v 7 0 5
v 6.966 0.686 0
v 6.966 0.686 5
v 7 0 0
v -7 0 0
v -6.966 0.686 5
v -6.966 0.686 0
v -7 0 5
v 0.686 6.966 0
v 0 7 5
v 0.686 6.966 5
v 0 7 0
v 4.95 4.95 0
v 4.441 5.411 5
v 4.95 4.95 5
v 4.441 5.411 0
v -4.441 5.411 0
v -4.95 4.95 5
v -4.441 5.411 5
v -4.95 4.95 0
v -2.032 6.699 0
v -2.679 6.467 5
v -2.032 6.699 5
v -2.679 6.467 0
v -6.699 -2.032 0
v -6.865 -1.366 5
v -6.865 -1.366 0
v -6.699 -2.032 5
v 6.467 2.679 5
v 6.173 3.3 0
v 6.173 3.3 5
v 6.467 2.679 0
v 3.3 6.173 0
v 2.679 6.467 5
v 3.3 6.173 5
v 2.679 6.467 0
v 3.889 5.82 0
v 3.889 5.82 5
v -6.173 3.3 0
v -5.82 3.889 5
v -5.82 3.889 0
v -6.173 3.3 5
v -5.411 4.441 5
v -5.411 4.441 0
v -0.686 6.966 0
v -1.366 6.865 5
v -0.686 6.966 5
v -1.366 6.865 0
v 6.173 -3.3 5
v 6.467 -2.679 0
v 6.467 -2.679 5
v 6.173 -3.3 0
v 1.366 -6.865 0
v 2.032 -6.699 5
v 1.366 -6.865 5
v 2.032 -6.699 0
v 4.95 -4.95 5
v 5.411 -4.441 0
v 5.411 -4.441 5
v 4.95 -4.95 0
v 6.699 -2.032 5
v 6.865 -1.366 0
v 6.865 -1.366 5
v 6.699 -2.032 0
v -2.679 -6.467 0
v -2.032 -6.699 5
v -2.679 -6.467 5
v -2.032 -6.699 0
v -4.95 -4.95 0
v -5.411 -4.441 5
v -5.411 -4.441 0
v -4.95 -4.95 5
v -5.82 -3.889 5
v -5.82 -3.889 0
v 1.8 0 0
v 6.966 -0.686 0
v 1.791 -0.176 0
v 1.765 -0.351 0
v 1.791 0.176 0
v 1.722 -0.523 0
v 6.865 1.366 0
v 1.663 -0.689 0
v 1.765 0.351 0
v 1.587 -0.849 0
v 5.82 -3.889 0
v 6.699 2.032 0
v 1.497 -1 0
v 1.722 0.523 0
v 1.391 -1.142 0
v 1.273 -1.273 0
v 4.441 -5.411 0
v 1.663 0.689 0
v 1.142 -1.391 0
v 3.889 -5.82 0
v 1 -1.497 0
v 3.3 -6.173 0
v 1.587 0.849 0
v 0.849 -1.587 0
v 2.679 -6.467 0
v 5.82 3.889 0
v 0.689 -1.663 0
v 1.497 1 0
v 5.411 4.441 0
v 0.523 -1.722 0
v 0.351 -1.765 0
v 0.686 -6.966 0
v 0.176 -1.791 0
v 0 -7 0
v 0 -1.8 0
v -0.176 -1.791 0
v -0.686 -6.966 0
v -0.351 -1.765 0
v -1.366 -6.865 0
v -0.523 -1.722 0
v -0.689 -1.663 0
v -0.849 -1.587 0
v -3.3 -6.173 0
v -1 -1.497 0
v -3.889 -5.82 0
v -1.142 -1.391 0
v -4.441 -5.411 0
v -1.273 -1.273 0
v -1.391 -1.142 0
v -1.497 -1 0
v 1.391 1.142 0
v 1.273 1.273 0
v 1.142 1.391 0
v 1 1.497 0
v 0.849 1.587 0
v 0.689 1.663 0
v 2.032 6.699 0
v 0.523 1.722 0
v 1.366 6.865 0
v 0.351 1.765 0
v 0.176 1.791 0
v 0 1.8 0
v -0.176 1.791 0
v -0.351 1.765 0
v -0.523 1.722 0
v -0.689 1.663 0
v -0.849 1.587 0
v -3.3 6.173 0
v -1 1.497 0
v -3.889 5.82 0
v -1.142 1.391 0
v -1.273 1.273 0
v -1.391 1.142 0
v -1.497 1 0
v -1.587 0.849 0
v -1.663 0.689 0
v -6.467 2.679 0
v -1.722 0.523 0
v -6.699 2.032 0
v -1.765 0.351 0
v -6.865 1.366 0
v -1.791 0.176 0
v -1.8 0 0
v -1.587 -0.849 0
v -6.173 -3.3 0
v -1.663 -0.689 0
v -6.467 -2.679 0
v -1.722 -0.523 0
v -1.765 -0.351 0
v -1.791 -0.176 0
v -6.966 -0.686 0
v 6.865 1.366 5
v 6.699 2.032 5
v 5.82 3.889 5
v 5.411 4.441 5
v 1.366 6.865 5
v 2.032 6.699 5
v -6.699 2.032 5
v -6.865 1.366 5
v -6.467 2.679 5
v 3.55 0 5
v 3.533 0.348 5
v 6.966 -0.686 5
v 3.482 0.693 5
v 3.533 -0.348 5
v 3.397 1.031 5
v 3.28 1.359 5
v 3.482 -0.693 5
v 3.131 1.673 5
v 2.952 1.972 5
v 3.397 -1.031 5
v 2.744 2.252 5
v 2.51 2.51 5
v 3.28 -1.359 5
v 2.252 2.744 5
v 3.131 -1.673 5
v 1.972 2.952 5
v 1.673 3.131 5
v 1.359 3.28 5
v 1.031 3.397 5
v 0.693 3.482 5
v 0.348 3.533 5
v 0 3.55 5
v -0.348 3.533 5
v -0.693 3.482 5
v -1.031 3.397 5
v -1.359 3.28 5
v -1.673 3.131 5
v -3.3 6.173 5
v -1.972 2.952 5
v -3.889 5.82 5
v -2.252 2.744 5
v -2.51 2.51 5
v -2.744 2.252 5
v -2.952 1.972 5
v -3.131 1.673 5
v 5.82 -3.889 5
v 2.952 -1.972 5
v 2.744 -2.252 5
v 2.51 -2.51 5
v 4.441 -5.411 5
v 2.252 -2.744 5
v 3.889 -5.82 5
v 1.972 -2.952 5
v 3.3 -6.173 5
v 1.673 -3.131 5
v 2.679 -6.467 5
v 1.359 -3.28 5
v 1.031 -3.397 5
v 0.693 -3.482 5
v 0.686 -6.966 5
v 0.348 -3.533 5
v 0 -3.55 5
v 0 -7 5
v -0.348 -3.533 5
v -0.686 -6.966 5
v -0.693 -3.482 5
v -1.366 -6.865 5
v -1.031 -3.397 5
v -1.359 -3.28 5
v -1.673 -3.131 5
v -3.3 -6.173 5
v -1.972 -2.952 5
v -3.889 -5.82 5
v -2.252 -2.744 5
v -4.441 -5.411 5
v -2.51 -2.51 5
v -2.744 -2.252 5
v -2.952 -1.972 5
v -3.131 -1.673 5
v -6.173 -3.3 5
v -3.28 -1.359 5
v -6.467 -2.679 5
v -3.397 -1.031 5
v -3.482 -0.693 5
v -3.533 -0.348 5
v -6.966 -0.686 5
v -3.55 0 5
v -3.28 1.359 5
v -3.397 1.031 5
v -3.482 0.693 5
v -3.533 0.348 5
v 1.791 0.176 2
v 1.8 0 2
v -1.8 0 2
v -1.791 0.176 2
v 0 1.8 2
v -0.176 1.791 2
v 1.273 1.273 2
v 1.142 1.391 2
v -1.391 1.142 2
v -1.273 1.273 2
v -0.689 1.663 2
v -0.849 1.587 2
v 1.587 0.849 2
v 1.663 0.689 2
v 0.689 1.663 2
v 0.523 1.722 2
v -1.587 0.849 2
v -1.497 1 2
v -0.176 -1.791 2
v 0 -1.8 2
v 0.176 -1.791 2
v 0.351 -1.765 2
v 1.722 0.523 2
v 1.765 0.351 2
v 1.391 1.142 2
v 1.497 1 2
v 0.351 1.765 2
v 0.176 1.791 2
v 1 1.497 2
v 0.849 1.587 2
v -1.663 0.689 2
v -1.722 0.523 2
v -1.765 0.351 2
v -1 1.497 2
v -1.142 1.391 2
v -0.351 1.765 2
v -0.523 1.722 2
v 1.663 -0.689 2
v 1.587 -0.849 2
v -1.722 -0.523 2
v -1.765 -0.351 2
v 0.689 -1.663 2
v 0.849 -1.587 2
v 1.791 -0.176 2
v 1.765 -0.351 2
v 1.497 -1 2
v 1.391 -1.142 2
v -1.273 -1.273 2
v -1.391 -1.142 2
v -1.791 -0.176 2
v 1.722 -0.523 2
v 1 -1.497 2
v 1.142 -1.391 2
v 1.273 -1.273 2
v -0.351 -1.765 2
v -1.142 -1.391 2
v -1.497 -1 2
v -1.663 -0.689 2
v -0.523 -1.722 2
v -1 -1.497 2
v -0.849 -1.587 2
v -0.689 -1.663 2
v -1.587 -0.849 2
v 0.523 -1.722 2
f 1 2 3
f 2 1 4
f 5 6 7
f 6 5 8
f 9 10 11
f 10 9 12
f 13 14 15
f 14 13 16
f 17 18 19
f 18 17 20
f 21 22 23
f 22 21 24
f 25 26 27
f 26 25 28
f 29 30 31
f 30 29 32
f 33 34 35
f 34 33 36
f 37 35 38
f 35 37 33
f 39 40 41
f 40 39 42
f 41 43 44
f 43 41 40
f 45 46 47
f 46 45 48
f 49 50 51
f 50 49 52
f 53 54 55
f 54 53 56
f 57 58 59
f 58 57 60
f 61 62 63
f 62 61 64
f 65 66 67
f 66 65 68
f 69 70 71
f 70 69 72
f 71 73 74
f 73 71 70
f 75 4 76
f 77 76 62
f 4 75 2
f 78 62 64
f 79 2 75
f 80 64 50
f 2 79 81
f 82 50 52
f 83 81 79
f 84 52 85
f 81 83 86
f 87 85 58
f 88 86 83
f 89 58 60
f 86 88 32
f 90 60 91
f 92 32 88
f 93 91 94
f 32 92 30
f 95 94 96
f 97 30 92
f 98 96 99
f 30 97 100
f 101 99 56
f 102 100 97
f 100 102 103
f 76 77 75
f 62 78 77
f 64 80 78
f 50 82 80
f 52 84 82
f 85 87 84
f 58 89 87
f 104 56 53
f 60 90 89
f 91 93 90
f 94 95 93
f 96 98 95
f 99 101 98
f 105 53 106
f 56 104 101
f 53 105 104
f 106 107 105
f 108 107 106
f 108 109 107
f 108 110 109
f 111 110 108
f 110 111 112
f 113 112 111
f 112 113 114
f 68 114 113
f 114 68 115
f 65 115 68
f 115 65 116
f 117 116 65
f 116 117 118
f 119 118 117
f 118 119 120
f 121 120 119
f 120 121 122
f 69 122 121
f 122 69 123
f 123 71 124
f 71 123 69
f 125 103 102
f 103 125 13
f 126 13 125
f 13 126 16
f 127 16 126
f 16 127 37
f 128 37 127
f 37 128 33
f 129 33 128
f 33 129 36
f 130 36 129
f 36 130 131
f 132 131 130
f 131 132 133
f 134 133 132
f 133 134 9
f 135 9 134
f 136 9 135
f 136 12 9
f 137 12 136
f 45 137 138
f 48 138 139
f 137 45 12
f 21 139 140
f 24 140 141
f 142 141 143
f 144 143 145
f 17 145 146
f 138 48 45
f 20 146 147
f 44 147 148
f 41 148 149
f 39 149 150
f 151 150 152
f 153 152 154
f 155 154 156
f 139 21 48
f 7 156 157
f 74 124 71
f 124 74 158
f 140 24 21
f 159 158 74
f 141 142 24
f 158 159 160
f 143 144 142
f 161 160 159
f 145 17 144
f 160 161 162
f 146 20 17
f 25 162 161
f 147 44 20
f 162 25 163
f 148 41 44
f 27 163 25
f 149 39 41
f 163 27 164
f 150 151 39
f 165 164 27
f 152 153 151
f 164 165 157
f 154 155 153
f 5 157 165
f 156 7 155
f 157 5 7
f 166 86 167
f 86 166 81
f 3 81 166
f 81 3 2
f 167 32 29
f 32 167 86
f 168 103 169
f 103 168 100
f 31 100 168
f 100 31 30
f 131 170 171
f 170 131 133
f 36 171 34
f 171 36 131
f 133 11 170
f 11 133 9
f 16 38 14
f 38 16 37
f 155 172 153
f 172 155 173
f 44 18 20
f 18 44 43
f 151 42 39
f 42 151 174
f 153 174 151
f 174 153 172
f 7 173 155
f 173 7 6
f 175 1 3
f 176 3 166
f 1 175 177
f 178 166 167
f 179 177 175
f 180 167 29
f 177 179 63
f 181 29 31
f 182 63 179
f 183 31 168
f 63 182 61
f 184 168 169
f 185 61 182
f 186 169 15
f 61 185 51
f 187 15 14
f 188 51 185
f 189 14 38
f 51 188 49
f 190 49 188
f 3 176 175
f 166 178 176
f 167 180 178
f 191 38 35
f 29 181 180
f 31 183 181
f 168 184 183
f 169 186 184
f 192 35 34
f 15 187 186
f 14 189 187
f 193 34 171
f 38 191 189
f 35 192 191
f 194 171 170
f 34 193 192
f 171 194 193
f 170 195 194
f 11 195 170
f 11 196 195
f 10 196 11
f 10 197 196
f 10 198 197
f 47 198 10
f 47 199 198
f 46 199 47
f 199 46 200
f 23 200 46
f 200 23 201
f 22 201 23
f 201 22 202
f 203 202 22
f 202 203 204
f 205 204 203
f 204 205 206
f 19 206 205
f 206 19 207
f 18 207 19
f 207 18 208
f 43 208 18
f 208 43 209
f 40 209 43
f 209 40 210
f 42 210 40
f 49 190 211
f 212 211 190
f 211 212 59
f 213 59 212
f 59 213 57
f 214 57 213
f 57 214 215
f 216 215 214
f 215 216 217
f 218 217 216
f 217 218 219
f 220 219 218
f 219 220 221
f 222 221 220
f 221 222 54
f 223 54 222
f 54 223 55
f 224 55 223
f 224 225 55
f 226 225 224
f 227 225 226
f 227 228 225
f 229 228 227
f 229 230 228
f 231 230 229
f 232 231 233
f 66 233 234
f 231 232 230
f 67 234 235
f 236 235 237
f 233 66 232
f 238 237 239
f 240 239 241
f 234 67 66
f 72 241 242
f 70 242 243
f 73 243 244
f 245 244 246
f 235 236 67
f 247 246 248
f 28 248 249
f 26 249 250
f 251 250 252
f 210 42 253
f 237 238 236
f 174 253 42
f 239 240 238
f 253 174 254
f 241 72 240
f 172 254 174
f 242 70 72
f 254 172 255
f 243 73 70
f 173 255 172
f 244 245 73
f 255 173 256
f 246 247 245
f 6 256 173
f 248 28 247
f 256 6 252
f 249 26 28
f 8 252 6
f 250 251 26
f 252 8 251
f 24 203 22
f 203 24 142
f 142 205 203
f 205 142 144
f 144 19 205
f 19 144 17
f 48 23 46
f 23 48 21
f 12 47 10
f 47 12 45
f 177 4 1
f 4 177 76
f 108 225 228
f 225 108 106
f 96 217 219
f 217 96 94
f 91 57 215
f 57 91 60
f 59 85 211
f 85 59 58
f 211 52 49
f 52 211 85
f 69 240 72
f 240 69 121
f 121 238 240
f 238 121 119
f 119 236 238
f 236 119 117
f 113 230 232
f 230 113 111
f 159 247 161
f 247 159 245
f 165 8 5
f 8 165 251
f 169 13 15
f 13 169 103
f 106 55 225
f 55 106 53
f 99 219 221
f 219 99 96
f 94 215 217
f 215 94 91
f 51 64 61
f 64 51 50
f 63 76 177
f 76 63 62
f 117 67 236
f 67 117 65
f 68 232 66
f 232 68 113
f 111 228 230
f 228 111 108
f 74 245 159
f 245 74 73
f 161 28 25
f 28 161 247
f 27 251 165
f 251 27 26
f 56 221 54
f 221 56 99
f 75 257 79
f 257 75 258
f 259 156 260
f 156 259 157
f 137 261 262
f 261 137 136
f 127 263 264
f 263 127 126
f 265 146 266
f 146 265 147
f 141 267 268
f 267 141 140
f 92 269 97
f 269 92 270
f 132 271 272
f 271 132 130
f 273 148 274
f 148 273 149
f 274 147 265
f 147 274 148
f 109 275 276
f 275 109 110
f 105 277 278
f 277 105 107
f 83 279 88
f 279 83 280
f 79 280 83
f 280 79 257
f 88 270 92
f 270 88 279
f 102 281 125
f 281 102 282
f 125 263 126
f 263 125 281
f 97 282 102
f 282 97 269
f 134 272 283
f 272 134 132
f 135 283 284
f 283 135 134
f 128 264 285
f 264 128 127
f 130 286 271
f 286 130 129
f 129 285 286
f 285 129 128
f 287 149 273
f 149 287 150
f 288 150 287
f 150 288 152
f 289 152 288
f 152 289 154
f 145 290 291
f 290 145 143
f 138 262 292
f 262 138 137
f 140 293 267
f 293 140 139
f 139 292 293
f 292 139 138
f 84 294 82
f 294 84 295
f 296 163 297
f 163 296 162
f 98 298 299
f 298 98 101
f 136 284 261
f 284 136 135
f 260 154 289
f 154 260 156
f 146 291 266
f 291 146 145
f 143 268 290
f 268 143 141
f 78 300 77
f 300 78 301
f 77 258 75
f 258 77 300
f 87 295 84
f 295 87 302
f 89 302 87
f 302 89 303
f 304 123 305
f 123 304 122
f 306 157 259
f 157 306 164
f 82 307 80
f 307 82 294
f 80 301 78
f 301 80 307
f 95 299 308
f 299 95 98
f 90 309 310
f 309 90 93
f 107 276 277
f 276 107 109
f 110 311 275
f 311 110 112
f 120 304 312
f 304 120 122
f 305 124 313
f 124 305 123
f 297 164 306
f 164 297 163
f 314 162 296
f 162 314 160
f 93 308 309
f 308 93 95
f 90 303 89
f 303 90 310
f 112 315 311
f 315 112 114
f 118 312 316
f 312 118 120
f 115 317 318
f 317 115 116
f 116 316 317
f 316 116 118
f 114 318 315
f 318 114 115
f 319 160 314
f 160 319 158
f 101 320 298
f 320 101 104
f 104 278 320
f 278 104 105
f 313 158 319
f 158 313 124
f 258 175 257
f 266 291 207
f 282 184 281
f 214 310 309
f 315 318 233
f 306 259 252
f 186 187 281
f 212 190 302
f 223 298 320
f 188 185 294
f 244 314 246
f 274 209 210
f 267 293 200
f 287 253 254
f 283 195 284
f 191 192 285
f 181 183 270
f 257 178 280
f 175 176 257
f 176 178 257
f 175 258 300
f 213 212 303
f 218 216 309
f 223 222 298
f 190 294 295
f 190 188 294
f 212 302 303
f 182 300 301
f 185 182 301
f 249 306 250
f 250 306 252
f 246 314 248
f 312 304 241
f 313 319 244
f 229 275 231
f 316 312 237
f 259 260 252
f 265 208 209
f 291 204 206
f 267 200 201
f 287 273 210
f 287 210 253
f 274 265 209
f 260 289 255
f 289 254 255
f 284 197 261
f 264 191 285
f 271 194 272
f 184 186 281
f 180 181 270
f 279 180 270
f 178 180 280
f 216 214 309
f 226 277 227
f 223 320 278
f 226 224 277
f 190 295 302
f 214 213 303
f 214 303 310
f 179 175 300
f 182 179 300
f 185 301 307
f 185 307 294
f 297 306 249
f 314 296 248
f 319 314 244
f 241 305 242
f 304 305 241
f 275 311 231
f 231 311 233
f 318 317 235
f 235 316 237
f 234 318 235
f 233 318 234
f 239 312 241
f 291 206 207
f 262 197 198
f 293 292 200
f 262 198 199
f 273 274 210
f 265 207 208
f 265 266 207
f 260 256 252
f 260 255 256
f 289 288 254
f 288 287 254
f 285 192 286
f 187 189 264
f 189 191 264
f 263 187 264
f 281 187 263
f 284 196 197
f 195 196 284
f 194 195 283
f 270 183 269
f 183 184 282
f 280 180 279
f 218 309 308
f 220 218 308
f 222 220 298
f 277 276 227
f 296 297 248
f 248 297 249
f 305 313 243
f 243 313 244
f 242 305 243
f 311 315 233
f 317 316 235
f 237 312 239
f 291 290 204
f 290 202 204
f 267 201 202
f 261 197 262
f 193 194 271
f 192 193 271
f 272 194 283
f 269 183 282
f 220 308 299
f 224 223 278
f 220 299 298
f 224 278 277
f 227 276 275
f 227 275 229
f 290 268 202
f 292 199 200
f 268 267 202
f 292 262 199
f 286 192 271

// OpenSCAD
washer_dia = 14;
washer_hole = 3.6;
washer_height = 5;

screw_head_dia = 7.1;
screw_head_height = 3;

$fn = 64;

difference() {
    cylinder(d = washer_dia, h = washer_height);
    cylinder(d = washer_hole, h = washer_height);
    translate([0, 0, washer_height - screw_head_height])
        cylinder(d2 = screw_head_dia, d1 = washer_hole, h = screw_head_height);
}
